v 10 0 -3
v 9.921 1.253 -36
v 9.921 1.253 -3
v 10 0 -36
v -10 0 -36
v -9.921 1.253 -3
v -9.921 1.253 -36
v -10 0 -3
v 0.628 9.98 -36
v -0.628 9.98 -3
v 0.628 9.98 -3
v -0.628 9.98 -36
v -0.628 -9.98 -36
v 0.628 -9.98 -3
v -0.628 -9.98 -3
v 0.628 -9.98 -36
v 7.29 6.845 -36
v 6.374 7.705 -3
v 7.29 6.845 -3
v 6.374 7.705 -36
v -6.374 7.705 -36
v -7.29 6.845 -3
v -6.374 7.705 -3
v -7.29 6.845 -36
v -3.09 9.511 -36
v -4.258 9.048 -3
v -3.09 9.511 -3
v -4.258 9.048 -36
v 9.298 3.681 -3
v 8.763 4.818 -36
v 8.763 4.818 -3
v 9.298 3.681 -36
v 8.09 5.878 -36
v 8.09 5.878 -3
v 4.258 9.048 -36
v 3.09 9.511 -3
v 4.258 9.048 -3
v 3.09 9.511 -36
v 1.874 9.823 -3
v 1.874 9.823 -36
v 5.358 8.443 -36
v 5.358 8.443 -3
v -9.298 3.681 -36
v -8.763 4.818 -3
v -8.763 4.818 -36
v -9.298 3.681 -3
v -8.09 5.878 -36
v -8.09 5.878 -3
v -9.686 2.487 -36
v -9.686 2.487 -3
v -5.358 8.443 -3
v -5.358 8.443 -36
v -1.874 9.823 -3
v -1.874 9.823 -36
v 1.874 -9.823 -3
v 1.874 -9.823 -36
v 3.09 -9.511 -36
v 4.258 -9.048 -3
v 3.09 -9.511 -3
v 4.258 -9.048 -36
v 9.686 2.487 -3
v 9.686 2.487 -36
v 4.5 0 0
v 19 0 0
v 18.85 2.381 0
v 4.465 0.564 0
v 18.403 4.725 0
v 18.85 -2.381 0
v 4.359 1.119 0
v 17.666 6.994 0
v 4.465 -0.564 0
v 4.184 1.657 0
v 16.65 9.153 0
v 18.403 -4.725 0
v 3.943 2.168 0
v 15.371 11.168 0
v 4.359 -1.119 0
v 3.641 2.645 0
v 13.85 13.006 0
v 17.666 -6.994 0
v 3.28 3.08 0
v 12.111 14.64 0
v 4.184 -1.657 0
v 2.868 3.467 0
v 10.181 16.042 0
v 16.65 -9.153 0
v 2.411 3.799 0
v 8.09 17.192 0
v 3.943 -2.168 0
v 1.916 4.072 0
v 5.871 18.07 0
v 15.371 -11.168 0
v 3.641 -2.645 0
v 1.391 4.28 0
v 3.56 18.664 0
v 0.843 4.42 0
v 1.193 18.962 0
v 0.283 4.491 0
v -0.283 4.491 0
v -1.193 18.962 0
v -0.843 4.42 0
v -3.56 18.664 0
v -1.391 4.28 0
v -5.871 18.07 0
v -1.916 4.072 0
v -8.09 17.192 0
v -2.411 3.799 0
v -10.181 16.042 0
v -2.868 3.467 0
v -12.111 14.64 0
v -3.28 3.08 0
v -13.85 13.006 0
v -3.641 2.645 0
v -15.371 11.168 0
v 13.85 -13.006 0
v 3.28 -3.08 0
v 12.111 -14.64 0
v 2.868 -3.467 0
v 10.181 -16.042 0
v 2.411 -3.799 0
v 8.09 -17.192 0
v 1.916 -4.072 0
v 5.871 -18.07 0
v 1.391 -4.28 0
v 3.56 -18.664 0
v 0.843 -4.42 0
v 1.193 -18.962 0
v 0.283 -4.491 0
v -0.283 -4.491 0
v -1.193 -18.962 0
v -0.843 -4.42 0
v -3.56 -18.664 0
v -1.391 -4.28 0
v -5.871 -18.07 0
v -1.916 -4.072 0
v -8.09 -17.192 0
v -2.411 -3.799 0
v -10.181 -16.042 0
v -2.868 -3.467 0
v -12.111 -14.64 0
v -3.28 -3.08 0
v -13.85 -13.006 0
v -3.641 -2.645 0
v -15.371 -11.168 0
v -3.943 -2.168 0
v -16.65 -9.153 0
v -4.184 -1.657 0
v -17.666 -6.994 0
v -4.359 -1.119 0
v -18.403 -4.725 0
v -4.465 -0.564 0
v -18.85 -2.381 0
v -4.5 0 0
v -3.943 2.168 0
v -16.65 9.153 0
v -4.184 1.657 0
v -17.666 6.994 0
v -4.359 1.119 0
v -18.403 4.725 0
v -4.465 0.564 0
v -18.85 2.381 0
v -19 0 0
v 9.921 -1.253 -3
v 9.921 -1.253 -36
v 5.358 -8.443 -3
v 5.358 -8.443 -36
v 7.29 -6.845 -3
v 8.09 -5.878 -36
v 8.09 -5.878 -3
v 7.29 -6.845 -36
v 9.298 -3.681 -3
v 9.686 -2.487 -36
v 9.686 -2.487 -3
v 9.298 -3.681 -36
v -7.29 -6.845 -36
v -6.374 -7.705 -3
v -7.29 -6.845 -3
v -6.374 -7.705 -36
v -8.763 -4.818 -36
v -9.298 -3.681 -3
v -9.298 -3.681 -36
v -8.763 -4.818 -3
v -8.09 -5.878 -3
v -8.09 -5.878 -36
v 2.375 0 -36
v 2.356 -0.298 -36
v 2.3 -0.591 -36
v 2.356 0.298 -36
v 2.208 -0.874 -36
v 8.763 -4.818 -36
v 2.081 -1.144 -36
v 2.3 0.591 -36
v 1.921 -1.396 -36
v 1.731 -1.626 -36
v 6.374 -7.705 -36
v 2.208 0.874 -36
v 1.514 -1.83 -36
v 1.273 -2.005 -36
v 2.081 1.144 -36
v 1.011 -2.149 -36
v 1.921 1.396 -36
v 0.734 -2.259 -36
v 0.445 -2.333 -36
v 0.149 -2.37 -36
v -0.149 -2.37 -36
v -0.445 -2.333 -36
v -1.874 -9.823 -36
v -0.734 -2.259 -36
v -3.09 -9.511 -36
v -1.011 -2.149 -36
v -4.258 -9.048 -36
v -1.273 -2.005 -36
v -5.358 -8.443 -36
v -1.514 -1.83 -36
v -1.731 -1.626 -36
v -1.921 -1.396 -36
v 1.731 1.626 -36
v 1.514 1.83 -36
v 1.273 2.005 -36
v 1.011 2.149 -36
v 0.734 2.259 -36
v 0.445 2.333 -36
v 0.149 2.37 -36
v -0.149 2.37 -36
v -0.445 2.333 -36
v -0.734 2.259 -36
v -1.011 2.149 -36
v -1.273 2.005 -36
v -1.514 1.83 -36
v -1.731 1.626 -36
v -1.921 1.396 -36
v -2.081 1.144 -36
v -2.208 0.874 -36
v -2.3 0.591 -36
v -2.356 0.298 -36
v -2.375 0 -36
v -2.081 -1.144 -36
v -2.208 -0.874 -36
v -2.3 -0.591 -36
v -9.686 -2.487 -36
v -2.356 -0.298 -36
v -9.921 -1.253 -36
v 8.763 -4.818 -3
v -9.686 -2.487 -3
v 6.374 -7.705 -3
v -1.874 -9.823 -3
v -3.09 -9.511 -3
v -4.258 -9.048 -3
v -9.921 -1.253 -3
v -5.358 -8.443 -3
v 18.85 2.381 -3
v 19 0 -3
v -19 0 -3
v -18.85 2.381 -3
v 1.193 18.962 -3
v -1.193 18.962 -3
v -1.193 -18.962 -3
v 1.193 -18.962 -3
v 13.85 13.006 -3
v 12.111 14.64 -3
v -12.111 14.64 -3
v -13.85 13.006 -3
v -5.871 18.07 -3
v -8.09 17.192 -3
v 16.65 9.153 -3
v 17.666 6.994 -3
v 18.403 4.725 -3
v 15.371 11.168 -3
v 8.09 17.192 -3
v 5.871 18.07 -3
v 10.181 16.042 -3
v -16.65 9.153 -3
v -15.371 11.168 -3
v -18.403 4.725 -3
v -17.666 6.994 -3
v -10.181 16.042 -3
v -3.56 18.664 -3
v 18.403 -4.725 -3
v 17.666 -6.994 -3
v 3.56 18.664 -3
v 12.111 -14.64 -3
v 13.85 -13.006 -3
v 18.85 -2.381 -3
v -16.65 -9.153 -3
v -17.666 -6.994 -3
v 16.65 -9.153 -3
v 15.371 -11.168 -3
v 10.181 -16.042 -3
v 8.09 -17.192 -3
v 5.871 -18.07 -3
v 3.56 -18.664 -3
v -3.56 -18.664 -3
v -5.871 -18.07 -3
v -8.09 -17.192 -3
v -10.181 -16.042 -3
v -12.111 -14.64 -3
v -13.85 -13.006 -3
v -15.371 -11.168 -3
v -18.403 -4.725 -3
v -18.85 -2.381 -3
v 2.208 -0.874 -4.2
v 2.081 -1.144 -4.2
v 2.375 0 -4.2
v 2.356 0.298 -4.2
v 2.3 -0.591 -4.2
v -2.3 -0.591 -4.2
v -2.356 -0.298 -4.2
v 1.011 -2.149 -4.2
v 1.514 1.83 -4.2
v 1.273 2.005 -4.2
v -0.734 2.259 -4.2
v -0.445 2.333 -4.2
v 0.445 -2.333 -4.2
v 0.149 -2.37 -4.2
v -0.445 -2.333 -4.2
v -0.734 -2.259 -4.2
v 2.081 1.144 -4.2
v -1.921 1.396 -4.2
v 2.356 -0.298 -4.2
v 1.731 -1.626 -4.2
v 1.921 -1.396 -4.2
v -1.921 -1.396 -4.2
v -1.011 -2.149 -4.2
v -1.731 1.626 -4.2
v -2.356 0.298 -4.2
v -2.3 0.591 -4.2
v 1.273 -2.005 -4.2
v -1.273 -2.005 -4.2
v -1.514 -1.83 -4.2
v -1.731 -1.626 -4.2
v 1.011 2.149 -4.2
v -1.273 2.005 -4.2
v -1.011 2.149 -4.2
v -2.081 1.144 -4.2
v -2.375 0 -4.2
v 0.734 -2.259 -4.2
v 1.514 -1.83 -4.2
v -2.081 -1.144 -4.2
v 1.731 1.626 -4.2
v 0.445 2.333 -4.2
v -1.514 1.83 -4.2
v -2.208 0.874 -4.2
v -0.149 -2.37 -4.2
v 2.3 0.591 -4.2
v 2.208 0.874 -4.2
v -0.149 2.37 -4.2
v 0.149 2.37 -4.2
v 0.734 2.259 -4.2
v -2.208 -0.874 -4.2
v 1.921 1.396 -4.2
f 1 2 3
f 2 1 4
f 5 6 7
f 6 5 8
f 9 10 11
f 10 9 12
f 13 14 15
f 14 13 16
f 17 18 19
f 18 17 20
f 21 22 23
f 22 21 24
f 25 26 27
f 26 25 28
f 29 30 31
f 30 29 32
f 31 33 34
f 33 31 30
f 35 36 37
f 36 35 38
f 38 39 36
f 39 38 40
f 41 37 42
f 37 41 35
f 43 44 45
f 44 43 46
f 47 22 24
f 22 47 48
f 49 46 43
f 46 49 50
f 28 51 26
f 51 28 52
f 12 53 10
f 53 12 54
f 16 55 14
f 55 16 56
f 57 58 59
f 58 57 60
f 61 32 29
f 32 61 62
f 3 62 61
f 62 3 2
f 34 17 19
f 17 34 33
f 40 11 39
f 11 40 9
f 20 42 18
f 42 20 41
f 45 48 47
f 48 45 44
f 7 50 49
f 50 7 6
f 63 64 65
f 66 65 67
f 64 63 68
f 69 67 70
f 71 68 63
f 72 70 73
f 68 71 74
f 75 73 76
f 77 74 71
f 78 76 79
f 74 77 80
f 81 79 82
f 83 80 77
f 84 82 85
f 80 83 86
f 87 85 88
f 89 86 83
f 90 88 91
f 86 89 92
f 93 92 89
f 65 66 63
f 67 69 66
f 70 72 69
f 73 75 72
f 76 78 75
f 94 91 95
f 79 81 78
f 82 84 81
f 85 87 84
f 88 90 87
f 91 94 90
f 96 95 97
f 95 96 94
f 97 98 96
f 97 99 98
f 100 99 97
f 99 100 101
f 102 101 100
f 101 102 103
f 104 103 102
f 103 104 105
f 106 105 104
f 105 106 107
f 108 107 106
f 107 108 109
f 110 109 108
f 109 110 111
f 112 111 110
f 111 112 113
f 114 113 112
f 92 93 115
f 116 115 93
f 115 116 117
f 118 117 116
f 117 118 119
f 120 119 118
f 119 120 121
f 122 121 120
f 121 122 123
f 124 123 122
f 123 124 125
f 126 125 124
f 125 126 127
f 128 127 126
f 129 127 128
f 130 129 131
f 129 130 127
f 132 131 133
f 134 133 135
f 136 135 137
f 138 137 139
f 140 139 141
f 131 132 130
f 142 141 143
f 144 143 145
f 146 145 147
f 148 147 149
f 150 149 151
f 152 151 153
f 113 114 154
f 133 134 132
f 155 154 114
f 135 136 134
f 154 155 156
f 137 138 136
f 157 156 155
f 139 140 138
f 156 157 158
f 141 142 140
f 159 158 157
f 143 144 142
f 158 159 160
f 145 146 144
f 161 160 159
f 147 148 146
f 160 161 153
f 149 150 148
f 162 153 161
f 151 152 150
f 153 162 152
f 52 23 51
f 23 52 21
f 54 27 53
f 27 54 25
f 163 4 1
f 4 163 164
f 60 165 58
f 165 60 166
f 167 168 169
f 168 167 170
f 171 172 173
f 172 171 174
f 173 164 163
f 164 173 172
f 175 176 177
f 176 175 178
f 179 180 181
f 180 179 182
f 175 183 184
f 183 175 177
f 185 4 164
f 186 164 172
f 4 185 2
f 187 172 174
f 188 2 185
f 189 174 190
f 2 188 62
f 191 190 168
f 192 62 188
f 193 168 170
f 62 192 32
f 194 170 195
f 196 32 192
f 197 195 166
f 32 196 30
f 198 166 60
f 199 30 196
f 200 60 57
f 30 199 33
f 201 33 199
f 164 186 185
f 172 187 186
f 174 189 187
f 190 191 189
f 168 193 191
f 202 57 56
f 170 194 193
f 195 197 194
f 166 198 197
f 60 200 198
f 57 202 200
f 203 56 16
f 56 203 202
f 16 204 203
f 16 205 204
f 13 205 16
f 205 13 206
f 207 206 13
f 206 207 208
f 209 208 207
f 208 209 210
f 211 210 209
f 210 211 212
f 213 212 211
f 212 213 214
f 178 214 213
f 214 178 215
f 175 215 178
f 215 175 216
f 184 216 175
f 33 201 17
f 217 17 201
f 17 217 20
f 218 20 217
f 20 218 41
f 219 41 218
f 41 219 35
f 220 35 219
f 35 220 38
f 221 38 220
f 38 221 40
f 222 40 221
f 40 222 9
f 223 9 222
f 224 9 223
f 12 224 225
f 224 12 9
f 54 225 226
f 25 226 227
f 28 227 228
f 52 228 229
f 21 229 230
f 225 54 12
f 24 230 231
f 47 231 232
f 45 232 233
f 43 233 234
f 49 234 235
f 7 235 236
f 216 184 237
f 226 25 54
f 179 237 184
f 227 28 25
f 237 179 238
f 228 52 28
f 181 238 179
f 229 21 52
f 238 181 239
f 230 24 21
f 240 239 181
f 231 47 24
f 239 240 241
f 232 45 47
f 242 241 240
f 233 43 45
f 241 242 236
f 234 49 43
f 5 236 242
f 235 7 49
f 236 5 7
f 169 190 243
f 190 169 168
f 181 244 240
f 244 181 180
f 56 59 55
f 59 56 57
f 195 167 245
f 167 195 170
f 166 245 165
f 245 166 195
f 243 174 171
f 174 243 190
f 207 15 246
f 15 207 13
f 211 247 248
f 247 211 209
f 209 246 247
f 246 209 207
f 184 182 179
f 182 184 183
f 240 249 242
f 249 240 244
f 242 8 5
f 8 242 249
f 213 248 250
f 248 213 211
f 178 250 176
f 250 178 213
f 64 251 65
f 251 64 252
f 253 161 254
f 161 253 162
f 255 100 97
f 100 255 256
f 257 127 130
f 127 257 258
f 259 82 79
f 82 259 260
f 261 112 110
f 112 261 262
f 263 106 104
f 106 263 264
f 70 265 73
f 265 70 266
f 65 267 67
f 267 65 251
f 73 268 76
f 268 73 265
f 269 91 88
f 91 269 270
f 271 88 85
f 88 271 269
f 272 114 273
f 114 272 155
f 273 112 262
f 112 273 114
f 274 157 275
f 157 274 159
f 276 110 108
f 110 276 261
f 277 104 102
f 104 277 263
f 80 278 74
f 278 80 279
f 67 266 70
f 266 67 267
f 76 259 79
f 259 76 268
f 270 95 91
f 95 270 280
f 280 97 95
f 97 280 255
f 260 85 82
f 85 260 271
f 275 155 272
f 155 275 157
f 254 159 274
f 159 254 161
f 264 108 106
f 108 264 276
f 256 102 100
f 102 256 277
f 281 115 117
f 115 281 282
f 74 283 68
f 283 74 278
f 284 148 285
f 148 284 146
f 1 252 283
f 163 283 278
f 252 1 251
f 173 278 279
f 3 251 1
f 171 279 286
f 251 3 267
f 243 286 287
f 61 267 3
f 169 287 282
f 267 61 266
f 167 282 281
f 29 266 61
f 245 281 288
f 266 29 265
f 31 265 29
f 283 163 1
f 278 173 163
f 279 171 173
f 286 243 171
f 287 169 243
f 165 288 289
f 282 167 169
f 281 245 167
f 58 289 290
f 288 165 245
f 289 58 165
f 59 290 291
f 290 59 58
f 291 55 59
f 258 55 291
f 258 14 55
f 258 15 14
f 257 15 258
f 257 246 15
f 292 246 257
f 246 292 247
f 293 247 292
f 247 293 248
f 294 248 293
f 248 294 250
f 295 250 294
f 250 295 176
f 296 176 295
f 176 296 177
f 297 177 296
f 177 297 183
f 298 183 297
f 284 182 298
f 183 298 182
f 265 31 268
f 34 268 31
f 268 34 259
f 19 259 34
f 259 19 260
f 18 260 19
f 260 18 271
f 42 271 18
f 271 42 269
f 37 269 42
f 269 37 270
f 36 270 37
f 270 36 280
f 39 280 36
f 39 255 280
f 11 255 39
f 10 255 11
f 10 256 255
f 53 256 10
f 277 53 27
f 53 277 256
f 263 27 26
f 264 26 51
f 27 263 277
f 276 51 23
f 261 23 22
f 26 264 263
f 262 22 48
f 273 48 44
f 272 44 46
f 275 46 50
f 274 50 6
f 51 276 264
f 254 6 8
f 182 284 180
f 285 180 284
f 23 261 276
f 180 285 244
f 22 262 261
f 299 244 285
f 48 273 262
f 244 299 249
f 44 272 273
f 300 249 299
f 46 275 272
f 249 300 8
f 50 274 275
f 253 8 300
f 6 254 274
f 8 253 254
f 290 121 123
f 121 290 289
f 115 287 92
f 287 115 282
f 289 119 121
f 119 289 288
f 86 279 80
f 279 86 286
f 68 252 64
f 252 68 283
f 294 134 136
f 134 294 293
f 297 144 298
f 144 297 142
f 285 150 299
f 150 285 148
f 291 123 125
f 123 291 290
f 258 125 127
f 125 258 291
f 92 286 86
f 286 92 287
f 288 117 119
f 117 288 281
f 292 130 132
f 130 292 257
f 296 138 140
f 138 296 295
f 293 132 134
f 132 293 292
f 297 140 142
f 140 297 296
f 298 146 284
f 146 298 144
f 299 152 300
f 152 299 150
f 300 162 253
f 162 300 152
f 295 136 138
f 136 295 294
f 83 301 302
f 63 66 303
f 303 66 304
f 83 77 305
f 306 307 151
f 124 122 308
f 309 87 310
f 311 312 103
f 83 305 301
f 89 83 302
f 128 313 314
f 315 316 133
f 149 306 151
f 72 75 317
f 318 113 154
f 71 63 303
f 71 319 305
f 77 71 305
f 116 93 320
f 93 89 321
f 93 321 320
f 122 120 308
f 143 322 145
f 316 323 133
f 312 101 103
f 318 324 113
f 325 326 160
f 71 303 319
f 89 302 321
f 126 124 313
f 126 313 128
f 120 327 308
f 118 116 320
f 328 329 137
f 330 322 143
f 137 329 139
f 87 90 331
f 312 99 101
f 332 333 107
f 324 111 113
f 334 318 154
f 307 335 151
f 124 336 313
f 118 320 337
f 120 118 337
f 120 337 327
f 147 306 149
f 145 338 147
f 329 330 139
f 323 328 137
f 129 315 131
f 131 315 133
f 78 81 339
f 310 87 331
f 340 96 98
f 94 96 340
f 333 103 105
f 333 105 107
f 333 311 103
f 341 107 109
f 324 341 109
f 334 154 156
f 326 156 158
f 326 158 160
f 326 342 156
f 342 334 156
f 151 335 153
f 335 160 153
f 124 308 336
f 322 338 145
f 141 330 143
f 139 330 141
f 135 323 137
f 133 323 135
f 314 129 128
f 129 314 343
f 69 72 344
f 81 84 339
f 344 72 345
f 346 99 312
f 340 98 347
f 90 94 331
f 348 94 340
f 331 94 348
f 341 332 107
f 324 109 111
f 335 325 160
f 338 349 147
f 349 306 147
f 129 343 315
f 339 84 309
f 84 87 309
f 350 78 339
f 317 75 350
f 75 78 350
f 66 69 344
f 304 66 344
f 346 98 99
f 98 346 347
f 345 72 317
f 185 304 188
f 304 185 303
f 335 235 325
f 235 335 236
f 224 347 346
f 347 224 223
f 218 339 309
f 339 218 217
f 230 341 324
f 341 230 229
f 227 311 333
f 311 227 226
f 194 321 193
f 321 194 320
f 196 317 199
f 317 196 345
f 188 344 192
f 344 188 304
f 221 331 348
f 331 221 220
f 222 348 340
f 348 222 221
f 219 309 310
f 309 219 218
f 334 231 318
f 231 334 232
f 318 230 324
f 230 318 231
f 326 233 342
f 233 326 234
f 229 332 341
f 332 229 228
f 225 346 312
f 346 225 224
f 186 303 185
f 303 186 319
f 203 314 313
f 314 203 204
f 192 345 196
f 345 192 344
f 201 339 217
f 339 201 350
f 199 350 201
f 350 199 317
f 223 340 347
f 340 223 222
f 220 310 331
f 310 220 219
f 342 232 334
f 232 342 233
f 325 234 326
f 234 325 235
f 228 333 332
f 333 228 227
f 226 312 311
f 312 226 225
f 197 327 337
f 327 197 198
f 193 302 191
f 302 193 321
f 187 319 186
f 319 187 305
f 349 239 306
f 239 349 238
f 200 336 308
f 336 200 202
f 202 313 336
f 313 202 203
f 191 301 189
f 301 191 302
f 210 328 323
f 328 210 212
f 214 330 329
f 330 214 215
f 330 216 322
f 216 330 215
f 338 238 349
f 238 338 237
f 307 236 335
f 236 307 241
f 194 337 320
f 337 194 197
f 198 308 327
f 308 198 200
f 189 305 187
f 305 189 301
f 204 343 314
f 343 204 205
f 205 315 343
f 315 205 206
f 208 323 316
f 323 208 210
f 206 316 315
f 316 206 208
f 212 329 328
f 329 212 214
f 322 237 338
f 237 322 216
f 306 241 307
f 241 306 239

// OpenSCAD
$fn = 50;


difference() {
	union() {
		translate(v = [0, 0, -36.0000000000]) {
			cylinder(h = 36, r = 10.0000000000);
		}
		translate(v = [0, 0, -3.0000000000]) {
			cylinder(h = 3, r = 19.0000000000);
		}
	}
	union() {
		translate(v = [0, 0, 0]) {
			rotate(a = [0, 0, 0]) {
				difference() {
					union() {
						#translate(v = [0, 0, -36.0000000000]) {
							cylinder(h = 36, r = 2.2500000000);
						}
						#translate(v = [0, 0, -4.2000000000]) {
							cylinder(h = 4.2000000000, r1 = 2.3750000000, r2 = 4.5000000000);
						}
						#translate(v = [0, 0, -36.0000000000]) {
							cylinder(h = 36, r = 2.3750000000);
						}
						#translate(v = [0, 0, -36.0000000000]) {
							cylinder(h = 36, r = 2.2500000000);
						}
					}
					union();
				}
			}
		}
	}
}
